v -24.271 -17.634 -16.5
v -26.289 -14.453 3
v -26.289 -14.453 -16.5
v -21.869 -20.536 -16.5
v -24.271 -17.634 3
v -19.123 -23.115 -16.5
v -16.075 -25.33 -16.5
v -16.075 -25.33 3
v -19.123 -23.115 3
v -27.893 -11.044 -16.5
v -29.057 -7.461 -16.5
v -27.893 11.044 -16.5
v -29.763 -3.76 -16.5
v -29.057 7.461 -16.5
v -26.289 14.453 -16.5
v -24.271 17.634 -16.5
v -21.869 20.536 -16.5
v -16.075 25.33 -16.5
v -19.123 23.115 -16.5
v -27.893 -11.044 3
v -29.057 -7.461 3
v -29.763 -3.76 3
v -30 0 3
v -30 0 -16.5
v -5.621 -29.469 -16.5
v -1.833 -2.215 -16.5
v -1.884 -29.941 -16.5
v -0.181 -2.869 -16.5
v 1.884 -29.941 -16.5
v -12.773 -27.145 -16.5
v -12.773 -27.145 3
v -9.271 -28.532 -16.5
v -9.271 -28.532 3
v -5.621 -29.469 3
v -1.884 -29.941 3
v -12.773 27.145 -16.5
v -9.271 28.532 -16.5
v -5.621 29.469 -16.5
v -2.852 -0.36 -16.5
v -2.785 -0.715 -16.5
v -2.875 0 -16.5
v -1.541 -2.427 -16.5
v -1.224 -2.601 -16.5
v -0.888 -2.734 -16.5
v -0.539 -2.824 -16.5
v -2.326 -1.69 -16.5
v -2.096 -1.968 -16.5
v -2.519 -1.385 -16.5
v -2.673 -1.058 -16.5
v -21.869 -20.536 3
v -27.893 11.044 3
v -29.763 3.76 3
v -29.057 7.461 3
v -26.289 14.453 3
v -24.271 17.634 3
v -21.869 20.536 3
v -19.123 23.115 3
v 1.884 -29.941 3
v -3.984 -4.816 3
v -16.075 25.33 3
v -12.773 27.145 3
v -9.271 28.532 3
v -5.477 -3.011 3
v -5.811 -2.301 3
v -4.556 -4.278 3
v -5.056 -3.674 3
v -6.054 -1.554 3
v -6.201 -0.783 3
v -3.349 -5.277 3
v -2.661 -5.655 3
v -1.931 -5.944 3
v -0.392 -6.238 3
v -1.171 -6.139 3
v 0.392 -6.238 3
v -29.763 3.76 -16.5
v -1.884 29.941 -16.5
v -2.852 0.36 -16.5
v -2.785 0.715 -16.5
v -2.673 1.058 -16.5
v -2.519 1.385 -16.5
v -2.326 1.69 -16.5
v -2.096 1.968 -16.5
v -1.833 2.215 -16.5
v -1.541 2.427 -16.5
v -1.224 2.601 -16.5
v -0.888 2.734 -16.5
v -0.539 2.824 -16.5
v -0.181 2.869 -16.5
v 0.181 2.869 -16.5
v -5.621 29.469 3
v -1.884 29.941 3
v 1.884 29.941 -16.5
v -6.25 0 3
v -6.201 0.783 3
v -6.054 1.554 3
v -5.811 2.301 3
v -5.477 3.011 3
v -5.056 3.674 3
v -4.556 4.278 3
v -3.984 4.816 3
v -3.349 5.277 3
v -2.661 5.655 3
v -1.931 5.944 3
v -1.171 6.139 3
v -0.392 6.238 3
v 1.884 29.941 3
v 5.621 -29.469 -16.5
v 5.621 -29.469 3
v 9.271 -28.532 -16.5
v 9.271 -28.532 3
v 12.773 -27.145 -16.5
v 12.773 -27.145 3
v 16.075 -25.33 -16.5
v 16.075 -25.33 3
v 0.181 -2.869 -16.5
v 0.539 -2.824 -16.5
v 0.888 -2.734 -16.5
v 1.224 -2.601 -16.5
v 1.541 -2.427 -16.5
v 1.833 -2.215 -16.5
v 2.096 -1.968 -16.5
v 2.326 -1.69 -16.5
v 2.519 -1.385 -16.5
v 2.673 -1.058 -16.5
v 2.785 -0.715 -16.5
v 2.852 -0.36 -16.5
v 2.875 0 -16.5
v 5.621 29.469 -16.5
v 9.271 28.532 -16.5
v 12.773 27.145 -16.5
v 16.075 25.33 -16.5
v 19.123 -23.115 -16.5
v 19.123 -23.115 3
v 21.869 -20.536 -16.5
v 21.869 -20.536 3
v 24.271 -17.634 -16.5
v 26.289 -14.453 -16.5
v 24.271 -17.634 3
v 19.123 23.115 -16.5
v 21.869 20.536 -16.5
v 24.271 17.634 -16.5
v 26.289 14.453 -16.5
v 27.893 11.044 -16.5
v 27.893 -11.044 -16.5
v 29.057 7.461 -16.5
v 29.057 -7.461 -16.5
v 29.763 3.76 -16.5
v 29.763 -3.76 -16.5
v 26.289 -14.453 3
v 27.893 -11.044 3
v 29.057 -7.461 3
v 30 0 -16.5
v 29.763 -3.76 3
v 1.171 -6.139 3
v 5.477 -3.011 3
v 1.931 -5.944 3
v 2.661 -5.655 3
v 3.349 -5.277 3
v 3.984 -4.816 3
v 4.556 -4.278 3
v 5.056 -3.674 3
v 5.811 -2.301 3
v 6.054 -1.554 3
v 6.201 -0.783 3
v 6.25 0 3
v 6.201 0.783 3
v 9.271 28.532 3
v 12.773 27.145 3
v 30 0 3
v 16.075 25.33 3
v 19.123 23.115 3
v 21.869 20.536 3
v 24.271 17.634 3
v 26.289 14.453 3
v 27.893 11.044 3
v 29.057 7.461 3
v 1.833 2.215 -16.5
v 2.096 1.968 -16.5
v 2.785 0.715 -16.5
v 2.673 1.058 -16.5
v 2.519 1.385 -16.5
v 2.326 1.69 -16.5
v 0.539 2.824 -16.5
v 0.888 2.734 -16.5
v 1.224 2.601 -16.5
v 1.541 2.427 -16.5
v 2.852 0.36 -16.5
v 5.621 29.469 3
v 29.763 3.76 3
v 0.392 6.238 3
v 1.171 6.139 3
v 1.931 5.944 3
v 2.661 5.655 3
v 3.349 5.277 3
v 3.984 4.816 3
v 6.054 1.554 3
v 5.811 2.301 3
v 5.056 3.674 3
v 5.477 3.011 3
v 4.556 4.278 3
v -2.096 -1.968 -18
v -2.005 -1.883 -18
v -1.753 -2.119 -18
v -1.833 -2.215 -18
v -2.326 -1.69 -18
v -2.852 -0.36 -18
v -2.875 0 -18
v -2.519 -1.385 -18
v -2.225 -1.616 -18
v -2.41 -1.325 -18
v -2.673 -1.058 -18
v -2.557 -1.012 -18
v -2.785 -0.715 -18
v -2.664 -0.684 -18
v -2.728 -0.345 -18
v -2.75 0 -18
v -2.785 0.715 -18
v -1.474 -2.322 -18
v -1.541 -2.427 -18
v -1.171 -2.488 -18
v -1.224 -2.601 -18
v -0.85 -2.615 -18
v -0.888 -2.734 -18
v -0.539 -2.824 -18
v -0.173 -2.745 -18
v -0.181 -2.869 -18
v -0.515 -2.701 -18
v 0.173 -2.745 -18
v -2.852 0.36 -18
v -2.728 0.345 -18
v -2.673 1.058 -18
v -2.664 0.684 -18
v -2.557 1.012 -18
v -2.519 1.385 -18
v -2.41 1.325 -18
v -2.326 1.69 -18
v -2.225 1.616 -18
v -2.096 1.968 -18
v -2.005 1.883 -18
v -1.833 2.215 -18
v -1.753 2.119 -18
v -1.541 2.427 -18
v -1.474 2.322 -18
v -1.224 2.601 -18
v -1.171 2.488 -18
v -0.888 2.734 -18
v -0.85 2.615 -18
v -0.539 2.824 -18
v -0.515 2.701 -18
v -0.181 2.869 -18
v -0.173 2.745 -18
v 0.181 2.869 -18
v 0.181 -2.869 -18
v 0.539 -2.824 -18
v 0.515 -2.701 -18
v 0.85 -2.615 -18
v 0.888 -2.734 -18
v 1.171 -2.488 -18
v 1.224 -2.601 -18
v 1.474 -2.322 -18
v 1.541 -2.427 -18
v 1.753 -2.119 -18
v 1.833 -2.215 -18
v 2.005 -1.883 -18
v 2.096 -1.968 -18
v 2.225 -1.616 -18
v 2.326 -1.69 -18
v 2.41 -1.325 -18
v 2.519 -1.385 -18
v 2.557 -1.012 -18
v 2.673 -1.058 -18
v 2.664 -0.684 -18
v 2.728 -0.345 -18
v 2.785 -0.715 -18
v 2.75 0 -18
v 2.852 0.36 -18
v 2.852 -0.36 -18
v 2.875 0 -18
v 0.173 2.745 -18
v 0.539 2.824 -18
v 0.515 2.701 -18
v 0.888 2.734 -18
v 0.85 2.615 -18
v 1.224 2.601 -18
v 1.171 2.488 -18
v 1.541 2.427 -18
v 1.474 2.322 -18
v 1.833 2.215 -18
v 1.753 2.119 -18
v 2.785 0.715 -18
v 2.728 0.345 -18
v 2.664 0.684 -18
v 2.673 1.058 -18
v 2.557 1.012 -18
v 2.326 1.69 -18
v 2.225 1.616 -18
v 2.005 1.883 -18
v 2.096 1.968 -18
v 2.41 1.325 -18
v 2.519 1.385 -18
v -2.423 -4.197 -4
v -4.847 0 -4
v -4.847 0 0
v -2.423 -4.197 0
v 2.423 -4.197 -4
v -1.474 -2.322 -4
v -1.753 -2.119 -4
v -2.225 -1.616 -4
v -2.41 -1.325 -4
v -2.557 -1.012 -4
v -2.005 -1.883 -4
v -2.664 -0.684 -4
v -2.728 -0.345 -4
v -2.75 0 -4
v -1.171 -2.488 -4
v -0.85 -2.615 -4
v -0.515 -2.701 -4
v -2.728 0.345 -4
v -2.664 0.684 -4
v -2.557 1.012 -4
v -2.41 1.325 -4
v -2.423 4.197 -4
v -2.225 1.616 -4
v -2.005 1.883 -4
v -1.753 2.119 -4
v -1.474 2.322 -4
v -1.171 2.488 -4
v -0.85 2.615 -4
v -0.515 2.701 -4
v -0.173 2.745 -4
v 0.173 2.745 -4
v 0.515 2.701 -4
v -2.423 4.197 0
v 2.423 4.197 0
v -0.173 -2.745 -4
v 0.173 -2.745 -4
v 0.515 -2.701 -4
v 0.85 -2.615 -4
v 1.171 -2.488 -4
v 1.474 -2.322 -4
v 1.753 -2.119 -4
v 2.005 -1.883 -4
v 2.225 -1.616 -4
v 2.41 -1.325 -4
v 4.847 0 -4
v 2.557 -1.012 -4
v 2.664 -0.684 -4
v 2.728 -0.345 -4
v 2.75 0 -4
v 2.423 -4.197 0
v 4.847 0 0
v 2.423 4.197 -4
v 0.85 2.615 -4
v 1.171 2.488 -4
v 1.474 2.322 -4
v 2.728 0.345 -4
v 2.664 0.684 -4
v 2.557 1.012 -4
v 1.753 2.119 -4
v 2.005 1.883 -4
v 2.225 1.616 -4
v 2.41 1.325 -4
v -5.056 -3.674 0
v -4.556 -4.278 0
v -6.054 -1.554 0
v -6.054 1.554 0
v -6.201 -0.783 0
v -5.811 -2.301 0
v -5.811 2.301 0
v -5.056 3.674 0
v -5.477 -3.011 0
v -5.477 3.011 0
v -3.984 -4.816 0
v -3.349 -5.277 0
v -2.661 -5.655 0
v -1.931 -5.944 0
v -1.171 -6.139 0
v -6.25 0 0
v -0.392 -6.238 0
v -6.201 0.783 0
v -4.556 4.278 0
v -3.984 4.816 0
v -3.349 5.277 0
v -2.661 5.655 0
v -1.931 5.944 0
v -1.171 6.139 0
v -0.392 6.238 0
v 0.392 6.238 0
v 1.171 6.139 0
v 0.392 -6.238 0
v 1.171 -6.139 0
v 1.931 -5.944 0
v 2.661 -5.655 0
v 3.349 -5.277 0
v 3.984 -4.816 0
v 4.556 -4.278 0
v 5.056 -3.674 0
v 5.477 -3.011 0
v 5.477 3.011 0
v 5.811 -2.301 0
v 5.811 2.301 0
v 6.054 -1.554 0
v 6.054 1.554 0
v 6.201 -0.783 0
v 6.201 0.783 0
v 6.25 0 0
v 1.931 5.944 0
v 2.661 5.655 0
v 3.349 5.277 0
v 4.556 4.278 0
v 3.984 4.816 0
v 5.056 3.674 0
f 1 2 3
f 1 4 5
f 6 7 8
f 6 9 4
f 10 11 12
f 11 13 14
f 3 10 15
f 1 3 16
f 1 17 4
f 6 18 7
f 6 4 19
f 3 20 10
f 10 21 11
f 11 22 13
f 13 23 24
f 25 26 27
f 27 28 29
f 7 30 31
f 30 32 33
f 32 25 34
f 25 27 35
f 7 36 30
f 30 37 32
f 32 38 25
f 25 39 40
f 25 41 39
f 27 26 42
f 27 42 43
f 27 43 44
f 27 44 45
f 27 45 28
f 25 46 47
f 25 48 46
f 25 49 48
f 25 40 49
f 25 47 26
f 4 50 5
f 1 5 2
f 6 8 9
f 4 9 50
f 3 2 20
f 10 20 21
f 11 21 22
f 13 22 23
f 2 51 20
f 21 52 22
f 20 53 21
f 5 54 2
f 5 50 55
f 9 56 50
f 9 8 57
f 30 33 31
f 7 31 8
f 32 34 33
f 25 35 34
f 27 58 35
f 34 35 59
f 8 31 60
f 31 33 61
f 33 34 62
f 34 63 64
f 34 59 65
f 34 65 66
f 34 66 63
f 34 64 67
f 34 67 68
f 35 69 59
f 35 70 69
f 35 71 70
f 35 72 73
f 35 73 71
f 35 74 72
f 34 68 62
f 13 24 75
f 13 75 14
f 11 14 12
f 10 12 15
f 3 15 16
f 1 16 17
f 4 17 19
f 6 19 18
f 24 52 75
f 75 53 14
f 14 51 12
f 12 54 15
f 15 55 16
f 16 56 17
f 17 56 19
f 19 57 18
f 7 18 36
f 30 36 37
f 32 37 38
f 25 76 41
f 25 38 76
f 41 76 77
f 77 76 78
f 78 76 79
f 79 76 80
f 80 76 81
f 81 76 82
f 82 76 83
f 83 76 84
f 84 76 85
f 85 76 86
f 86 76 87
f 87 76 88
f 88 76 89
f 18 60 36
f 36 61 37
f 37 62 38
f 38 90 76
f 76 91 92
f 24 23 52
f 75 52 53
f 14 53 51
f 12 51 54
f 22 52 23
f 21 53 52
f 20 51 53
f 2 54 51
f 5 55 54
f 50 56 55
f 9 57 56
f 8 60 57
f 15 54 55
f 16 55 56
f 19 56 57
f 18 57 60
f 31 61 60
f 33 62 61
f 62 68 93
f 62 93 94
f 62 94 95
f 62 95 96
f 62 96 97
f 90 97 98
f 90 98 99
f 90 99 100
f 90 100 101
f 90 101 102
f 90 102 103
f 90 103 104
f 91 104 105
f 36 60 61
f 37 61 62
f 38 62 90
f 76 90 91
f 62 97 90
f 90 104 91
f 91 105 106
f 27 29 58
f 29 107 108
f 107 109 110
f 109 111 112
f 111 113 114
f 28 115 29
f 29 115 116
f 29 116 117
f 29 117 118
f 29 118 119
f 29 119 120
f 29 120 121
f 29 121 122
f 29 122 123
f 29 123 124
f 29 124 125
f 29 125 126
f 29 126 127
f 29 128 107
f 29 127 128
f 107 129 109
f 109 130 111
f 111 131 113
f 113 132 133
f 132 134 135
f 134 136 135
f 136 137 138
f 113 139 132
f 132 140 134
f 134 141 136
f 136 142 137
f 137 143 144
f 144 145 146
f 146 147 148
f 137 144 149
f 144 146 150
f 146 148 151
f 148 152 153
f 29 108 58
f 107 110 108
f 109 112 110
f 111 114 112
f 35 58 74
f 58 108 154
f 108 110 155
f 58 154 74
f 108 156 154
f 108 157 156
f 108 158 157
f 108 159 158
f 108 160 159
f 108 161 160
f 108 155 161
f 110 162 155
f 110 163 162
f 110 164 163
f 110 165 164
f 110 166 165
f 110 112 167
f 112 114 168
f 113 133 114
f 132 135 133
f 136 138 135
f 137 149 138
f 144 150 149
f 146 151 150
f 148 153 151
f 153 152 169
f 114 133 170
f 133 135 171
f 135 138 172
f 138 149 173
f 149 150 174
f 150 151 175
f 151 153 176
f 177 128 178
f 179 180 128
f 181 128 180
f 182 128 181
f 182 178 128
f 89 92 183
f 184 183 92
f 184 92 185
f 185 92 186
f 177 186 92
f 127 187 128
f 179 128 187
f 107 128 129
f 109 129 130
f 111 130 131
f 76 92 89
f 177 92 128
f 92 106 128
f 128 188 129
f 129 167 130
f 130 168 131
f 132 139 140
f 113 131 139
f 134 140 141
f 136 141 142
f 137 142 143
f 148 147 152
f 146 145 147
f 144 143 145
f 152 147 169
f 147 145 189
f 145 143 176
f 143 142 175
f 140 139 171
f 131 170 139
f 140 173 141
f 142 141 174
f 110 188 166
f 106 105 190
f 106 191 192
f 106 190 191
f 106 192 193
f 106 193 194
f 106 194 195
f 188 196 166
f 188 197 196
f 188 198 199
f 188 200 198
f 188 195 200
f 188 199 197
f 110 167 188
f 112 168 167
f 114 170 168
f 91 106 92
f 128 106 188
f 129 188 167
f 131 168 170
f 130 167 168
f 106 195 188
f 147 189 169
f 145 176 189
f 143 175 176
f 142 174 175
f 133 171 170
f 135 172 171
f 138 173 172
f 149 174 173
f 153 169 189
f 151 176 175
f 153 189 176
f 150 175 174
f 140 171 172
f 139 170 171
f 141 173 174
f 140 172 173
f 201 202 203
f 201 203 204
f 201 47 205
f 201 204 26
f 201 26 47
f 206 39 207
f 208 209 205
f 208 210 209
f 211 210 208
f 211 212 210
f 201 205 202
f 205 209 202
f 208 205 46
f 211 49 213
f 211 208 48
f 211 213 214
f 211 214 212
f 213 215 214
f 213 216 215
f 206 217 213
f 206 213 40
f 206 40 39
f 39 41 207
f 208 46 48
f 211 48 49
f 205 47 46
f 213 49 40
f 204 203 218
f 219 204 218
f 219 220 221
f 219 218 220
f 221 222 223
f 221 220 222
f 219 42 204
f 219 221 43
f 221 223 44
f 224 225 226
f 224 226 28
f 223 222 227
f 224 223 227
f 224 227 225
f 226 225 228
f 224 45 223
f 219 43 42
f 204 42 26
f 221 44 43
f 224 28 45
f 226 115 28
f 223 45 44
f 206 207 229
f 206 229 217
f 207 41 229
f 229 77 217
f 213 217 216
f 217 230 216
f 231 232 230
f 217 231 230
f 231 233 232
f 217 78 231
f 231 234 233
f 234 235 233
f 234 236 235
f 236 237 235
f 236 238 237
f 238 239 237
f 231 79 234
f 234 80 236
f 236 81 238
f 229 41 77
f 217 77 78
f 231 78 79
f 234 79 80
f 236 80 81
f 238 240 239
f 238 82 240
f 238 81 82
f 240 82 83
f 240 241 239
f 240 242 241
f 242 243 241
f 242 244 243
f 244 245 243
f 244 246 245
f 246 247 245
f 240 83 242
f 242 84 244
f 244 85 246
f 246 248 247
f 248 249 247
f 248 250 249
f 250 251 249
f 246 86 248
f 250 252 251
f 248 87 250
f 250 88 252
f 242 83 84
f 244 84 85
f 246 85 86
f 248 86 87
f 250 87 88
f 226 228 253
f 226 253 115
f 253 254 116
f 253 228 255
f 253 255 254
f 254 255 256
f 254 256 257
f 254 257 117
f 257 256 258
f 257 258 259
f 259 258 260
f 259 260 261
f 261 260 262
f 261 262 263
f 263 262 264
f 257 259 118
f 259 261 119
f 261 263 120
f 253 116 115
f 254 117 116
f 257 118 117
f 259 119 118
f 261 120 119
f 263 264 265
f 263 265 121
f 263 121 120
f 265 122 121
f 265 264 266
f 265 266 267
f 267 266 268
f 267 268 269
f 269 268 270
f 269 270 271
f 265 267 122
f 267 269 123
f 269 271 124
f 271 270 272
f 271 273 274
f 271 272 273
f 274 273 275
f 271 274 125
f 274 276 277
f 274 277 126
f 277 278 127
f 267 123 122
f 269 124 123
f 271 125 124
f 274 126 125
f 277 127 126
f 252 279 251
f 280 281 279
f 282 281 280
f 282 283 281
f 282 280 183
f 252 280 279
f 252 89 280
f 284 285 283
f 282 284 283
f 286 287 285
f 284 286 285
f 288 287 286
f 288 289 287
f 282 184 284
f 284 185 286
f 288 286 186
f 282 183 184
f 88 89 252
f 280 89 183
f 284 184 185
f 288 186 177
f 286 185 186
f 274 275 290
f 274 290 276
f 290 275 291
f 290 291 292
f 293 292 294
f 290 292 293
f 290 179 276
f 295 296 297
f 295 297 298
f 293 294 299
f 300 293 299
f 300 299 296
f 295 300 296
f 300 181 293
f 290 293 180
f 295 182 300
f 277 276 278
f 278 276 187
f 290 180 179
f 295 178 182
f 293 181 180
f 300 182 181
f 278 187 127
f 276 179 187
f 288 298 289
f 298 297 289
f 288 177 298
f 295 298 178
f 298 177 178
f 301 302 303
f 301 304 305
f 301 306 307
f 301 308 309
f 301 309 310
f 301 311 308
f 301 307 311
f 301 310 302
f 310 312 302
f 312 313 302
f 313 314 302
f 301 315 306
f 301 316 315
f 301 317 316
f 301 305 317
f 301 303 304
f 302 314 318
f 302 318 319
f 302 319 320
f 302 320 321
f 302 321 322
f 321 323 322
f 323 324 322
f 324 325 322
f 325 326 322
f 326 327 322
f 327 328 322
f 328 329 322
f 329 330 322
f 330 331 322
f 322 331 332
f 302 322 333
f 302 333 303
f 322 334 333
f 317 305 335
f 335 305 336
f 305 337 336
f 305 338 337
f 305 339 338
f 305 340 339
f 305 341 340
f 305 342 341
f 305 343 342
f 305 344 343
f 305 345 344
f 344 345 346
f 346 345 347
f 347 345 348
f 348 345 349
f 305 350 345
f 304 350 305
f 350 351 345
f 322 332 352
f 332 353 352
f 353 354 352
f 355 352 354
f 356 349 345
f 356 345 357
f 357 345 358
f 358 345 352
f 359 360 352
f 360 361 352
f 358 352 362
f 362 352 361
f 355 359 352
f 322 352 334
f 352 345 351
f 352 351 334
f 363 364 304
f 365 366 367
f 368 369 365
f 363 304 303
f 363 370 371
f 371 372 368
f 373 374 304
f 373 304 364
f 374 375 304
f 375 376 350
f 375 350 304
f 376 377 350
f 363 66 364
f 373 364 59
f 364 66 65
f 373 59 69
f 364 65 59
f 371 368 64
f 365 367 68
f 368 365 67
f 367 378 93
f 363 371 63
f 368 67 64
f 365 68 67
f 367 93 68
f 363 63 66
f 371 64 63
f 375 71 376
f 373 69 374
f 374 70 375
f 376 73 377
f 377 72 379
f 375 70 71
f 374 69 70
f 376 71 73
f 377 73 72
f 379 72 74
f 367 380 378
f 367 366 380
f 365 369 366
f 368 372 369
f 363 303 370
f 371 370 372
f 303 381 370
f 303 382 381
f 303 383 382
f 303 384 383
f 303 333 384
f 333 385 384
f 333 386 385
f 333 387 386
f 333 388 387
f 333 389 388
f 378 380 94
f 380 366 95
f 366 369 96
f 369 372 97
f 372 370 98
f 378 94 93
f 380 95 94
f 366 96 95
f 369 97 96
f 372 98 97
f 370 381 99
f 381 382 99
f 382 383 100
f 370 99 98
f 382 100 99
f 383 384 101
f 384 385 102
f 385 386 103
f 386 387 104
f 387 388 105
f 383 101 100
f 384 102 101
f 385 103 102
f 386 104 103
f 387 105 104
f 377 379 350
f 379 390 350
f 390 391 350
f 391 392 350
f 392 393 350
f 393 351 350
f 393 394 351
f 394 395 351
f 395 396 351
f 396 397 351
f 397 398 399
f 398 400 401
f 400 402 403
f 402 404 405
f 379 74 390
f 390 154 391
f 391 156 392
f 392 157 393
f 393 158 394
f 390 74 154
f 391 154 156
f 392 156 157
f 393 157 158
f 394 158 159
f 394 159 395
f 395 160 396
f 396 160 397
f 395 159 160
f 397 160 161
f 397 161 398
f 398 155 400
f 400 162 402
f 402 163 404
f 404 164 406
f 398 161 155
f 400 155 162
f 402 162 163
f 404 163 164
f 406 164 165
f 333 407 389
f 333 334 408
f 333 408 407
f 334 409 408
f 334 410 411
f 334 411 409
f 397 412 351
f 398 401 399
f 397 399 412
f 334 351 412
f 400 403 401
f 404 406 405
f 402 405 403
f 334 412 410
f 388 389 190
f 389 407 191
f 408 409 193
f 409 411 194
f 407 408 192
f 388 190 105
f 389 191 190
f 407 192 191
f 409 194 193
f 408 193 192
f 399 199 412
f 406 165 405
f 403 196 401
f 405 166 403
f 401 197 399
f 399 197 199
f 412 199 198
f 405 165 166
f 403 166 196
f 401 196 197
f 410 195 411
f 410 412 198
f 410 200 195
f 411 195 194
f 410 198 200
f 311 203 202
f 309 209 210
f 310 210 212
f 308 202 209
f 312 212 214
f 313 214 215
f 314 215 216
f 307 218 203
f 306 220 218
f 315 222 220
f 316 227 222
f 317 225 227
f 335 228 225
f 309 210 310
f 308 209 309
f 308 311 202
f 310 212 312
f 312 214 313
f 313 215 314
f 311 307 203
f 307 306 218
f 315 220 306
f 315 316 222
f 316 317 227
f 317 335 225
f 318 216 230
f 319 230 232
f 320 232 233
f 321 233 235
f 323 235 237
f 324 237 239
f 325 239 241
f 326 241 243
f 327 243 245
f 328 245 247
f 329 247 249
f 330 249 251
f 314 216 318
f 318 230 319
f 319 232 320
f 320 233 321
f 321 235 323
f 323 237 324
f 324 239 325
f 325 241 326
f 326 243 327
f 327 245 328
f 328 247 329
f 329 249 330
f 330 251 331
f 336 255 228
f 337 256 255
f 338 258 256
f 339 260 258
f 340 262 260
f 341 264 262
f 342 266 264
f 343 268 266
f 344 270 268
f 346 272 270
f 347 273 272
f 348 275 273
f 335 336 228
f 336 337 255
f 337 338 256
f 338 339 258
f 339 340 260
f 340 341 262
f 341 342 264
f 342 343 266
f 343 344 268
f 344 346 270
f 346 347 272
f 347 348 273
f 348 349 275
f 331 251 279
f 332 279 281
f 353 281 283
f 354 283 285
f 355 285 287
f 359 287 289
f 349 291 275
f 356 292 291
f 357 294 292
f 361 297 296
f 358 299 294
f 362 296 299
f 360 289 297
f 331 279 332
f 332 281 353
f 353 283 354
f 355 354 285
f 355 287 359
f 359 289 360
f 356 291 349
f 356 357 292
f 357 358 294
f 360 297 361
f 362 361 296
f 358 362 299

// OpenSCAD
$fn = 50;

difference() {
	union() {
		translate(v = [0, 0, -16.5]) {
			cylinder(h = 19.5, r = 30.0);
		}
		#translate(v = [0, 0, -18.0]) {
			cylinder(h = 18, r = 2.875);
		}
	}
	union() {
		translate(v = [0, 0, 0]) {
			rotate(a = [0, 0, 0]) {
				difference() {
					union() {
						translate(v = [0, 0, -4]) {
							linear_extrude(height = 4) {
								polygon(points = [[4.8468, 0.0], [2.4234000000000004, 4.197451927062417], [-2.423399999999999, 4.197451927062417], [-4.8468, 5.935618106107392e-16], [-2.423400000000002, -4.197451927062416], [2.423399999999997, -4.197451927062419]]);
							}
						}
					}
					union();
				}
			}
		}
		#cylinder(h = 3, r = 6.25);
		#translate(v = [0, 0, -100.0]) {
			cylinder(h = 200, r = 2.75);
		}
	}
}
